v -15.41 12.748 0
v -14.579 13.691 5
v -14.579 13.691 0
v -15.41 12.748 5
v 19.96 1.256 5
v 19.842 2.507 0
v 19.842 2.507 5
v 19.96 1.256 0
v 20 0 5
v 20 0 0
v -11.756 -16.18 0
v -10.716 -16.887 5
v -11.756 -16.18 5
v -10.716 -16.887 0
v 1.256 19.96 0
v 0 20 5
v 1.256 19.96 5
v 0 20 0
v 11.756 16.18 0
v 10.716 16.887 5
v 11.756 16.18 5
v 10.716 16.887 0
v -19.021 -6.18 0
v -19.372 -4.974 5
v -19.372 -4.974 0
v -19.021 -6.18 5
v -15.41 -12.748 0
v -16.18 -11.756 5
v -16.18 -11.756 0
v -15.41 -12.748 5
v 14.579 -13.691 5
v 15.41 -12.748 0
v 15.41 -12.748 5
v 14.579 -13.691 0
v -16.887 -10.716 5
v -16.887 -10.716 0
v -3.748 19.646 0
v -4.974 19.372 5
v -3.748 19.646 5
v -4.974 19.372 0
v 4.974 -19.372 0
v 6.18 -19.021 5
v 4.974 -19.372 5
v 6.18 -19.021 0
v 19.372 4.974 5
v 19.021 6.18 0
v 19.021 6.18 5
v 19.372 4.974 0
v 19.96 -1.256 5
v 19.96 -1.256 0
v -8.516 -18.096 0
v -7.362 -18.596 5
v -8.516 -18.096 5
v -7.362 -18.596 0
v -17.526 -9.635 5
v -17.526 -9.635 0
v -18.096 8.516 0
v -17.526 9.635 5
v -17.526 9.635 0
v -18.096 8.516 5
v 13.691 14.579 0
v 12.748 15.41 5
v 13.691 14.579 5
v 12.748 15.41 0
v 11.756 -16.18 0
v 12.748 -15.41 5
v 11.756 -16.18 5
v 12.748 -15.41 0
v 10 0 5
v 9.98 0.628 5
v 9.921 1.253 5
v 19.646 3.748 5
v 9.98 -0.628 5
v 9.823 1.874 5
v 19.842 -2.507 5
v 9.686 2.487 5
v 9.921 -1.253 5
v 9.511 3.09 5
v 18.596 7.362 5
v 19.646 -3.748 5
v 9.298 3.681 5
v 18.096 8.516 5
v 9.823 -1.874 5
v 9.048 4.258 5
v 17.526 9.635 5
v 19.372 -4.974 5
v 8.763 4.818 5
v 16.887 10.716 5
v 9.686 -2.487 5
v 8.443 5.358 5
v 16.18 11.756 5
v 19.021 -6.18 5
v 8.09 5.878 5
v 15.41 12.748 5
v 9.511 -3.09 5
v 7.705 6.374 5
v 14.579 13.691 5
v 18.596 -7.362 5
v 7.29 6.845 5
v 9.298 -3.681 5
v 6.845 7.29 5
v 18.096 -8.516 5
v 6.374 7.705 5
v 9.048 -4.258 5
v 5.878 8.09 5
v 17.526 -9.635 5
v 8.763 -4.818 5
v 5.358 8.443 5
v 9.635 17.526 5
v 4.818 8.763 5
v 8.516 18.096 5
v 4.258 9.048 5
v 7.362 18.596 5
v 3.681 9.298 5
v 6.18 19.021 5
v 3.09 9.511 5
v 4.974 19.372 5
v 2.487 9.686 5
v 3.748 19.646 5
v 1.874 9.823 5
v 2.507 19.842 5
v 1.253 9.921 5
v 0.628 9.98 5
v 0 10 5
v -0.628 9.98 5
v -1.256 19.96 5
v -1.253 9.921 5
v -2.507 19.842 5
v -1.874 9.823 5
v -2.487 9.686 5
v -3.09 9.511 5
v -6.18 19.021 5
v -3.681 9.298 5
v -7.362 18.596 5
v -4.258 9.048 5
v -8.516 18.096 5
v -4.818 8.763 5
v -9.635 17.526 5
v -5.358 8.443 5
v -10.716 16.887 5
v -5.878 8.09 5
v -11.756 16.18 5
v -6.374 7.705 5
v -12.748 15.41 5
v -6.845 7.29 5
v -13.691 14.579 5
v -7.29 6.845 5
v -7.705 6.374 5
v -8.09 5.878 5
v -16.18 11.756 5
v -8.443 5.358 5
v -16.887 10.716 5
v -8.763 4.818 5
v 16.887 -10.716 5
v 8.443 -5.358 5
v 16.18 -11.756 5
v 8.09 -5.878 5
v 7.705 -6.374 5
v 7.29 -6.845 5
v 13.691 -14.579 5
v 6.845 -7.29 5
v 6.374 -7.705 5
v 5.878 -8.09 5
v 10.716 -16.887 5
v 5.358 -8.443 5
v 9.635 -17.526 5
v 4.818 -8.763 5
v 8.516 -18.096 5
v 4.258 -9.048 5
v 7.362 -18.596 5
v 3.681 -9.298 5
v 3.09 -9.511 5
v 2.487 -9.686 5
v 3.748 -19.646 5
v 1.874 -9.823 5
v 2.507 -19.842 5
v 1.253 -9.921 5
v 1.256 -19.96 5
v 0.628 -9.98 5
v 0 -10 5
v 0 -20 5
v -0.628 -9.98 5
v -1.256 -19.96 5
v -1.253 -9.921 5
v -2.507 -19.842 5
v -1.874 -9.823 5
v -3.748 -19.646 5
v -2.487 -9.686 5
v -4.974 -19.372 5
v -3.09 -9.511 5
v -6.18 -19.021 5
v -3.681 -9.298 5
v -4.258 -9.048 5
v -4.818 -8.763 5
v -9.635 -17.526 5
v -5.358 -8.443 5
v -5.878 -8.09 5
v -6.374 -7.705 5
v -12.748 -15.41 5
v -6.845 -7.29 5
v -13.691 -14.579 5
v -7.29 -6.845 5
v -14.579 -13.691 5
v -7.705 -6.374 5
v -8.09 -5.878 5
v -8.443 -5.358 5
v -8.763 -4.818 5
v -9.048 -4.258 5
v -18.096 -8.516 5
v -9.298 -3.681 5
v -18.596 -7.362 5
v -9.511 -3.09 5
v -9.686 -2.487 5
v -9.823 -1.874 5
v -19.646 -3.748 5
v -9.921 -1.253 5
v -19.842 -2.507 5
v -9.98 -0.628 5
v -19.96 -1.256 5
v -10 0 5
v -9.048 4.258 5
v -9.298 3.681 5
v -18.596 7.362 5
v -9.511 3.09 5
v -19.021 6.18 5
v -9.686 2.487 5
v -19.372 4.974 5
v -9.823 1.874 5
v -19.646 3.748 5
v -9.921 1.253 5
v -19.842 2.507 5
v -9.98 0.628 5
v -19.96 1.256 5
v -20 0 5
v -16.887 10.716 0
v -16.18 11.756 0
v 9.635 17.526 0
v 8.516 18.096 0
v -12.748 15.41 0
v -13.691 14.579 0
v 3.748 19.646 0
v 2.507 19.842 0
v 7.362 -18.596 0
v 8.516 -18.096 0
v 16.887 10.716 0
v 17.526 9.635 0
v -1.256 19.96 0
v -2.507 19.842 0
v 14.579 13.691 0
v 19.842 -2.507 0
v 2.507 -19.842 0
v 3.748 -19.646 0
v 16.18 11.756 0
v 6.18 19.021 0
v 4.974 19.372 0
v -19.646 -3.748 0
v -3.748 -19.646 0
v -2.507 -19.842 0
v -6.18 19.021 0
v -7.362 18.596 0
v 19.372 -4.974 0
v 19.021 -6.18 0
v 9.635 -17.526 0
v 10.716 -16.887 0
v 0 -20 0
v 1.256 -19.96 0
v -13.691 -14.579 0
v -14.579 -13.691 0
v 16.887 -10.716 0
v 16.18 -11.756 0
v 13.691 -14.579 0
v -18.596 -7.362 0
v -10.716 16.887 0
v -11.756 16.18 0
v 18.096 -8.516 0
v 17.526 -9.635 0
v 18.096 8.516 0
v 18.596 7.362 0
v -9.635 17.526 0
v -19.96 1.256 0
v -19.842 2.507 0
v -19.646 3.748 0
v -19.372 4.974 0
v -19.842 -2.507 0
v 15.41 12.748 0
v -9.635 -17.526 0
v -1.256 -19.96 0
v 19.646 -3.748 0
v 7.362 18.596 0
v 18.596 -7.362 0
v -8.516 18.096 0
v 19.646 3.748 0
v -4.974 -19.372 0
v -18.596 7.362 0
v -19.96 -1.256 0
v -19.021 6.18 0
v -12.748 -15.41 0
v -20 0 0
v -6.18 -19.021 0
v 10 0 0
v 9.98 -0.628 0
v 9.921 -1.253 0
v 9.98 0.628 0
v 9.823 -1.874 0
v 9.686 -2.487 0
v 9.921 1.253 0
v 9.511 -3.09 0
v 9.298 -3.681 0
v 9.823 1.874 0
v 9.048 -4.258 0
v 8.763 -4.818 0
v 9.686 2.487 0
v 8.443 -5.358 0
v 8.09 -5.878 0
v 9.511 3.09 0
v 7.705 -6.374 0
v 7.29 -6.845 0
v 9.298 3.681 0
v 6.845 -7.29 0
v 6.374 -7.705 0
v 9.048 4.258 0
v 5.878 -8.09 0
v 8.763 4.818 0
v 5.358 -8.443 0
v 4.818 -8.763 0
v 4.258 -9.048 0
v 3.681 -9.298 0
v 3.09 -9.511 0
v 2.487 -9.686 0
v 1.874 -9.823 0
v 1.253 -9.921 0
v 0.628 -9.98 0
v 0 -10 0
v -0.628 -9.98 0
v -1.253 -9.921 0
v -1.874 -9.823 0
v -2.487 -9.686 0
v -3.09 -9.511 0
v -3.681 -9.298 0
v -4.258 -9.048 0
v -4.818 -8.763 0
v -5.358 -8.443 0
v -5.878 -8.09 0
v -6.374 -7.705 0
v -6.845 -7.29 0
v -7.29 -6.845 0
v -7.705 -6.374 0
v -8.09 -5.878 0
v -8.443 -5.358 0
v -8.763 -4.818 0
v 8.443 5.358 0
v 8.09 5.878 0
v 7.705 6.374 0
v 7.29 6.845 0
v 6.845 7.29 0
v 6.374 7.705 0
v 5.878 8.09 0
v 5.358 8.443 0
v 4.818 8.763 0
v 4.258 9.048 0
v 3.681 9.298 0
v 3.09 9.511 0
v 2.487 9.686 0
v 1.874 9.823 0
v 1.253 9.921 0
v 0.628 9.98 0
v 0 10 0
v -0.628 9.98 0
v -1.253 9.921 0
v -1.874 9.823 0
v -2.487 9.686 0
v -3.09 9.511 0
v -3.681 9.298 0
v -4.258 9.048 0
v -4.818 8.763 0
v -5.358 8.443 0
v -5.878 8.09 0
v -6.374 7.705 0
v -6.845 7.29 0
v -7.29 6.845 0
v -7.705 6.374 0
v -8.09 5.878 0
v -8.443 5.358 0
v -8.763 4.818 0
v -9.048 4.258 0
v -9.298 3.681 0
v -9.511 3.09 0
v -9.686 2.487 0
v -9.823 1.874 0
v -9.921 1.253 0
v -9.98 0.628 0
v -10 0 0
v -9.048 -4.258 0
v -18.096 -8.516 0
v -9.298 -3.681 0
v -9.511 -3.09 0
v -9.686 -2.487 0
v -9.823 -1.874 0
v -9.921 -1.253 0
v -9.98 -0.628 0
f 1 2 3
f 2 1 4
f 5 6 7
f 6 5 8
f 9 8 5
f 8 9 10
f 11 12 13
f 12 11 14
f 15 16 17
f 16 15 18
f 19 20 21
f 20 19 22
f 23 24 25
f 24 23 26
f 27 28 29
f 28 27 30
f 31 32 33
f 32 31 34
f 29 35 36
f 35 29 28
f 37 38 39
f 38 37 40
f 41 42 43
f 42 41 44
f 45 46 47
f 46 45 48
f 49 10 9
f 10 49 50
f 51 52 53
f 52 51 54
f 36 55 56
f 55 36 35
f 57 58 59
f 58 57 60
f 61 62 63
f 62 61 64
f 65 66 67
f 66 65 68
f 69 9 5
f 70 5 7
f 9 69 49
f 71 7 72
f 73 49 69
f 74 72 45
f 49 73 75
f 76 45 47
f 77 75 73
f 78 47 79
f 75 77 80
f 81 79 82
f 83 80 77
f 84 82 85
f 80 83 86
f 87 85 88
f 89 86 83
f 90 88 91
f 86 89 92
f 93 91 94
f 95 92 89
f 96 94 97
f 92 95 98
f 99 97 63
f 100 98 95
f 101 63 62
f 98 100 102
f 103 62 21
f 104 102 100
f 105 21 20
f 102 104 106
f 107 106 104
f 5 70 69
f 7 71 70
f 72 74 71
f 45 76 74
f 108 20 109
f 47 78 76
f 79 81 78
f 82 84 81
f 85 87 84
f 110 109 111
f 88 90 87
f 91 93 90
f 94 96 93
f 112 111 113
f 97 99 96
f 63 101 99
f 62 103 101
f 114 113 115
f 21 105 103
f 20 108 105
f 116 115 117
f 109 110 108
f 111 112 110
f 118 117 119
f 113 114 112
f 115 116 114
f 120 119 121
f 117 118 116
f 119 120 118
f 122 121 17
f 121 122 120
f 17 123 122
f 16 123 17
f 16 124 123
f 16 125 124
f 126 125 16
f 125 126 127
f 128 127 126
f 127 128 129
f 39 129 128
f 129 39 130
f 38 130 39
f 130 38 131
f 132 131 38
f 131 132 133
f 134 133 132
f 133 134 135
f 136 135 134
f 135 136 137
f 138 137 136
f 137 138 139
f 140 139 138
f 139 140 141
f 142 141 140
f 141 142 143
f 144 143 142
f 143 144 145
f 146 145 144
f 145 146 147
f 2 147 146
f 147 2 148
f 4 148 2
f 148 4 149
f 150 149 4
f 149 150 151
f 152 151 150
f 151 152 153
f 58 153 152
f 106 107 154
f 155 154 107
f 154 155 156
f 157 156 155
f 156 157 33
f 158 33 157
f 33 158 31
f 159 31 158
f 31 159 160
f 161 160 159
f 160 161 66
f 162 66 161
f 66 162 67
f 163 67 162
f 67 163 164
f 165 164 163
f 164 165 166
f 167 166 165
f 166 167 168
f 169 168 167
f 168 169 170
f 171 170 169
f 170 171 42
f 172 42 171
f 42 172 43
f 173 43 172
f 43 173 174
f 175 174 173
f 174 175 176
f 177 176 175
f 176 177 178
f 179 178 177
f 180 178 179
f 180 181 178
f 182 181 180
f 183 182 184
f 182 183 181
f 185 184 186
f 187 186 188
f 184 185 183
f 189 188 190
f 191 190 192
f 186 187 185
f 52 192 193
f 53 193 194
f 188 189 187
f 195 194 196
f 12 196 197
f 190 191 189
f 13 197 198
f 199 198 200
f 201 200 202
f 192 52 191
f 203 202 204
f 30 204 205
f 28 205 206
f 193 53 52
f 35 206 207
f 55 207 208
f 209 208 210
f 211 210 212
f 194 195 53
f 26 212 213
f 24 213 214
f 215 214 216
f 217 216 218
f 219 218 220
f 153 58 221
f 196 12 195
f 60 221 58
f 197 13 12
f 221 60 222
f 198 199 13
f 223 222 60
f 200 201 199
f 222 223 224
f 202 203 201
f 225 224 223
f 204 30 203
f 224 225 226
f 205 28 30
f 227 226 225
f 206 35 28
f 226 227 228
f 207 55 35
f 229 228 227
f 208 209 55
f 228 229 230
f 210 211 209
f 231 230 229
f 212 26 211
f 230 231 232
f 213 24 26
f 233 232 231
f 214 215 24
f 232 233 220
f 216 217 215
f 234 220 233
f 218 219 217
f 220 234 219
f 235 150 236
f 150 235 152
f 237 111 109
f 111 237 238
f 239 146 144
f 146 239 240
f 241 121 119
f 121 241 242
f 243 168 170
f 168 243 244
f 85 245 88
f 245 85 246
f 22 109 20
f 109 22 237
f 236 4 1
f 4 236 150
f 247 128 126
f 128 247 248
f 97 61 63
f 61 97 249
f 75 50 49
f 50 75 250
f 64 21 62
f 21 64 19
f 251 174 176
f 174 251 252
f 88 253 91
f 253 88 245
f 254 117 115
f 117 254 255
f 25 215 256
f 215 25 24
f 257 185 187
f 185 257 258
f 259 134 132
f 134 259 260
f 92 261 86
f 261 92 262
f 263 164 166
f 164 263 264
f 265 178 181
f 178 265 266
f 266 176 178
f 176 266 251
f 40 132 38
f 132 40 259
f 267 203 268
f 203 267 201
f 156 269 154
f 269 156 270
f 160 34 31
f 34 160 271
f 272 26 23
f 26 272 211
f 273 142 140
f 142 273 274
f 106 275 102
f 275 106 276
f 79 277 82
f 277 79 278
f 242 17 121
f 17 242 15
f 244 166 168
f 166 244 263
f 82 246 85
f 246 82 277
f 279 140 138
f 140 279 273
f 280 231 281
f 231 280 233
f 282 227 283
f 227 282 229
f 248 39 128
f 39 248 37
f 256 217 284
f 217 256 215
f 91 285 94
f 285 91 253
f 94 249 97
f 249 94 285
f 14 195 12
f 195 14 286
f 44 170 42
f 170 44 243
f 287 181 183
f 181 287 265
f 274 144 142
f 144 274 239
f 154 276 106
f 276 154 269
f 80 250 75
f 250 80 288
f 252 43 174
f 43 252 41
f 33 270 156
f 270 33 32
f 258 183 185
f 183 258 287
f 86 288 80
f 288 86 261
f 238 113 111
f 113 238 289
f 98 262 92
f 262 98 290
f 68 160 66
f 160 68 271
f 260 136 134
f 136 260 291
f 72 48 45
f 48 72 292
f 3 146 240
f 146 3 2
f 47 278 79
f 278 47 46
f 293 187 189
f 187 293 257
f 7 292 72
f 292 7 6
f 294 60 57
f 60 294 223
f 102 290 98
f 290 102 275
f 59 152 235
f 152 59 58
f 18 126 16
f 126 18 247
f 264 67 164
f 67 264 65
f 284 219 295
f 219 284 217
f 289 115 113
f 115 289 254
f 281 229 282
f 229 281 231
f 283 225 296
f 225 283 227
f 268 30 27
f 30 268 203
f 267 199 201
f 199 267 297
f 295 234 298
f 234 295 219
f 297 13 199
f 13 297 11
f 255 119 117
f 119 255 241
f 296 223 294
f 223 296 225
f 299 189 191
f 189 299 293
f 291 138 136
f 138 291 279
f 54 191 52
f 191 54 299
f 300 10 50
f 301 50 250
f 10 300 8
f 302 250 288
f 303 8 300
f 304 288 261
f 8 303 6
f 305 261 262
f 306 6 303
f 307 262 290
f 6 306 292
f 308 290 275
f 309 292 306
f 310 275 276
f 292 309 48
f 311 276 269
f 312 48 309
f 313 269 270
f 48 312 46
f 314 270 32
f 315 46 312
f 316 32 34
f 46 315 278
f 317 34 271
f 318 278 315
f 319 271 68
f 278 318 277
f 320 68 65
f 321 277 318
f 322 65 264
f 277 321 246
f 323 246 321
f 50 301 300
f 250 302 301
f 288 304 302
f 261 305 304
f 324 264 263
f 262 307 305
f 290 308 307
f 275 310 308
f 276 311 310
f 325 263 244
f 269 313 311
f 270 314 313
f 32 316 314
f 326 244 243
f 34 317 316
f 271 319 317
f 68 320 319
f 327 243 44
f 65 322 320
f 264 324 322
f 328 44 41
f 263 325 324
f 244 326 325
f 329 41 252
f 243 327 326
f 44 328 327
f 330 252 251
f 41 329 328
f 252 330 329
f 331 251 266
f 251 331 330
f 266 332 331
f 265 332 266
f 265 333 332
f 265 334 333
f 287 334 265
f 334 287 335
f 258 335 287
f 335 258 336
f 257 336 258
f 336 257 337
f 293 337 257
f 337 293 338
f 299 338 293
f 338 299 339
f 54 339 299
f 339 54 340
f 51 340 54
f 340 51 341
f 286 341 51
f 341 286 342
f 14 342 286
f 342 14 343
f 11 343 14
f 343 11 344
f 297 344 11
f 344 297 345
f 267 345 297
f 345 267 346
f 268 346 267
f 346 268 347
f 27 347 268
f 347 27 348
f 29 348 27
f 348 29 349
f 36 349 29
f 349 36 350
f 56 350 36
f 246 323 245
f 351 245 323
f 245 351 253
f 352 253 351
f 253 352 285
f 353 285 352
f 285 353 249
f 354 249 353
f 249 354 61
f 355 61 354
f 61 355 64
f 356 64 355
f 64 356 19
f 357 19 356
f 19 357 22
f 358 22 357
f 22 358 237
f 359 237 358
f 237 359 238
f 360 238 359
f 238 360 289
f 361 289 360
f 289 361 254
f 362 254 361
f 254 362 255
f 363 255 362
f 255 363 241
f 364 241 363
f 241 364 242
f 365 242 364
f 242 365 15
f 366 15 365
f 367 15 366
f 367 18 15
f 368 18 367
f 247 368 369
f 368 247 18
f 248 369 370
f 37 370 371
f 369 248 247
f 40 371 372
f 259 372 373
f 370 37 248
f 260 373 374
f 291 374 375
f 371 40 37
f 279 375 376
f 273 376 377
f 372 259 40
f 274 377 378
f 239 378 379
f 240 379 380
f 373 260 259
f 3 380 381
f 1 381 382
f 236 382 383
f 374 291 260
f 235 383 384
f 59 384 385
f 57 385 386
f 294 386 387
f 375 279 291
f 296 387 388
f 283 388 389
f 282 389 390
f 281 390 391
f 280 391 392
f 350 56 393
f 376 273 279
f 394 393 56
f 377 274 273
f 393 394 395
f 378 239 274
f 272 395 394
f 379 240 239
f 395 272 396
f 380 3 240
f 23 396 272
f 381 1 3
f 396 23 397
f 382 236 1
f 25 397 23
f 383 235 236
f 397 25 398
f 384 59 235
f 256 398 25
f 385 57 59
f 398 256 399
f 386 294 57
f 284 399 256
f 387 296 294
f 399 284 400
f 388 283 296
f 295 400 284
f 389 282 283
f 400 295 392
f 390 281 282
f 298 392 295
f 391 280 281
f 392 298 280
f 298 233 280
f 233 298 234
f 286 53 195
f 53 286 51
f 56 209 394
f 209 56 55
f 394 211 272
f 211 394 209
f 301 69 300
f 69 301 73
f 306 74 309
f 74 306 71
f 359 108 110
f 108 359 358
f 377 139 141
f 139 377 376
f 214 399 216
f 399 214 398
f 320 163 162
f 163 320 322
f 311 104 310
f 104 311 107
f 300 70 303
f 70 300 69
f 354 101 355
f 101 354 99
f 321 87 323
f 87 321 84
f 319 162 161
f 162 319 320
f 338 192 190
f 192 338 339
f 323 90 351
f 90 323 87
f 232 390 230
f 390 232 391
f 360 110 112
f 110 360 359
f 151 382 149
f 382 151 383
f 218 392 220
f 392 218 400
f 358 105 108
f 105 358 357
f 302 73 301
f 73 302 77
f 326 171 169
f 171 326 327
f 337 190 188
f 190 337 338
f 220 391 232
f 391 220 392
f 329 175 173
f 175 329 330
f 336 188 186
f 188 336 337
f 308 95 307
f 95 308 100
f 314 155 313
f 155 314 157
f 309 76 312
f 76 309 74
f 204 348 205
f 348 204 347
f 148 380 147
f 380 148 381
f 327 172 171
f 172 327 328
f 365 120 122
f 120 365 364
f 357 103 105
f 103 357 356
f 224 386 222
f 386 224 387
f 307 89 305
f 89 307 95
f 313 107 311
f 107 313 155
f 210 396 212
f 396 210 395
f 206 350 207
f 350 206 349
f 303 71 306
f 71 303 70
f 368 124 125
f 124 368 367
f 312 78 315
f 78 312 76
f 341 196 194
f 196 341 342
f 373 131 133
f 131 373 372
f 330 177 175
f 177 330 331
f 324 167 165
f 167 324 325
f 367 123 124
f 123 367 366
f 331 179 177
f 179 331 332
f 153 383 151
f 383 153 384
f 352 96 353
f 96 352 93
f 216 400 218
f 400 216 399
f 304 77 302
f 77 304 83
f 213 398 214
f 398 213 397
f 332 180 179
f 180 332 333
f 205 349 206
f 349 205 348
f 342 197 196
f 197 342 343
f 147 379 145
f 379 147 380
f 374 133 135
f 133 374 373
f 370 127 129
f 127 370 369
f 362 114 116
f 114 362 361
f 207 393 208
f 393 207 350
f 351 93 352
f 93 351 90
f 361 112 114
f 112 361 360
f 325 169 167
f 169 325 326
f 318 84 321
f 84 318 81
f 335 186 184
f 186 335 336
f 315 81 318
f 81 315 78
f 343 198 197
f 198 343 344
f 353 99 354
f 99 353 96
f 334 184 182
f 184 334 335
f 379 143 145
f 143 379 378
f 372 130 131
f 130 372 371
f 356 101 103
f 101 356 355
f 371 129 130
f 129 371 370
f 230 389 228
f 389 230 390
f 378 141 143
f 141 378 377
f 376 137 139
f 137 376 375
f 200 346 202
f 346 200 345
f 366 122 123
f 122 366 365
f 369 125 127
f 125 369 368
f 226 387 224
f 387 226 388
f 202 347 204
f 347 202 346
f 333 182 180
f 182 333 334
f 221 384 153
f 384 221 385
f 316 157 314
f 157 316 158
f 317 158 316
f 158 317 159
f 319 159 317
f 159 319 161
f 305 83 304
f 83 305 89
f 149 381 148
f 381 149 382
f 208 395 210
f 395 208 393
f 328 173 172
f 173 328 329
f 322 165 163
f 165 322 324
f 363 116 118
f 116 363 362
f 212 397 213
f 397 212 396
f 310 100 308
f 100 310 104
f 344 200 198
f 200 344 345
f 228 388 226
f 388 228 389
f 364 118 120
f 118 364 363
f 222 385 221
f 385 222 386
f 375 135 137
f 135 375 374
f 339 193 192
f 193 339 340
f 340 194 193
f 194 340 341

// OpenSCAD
// Parameters for the spacer_ring
ring_outer_diameter = 40; // Outer diameter of the ring
ring_inner_diameter = 20; // Inner diameter of the ring
ring_thickness = 5;       // Thickness of the ring

// Spacer Ring Module
module spacer_ring() {
    difference() {
        // Outer cylinder
        cylinder(h = ring_thickness, d = ring_outer_diameter, $fn = 100);
        // Inner cylinder (hole)
        translate([0, 0, -1]) // Slightly offset to ensure clean subtraction
        cylinder(h = ring_thickness + 2, d = ring_inner_diameter, $fn = 100);
    }
}

// Render the spacer_ring
spacer_ring();
